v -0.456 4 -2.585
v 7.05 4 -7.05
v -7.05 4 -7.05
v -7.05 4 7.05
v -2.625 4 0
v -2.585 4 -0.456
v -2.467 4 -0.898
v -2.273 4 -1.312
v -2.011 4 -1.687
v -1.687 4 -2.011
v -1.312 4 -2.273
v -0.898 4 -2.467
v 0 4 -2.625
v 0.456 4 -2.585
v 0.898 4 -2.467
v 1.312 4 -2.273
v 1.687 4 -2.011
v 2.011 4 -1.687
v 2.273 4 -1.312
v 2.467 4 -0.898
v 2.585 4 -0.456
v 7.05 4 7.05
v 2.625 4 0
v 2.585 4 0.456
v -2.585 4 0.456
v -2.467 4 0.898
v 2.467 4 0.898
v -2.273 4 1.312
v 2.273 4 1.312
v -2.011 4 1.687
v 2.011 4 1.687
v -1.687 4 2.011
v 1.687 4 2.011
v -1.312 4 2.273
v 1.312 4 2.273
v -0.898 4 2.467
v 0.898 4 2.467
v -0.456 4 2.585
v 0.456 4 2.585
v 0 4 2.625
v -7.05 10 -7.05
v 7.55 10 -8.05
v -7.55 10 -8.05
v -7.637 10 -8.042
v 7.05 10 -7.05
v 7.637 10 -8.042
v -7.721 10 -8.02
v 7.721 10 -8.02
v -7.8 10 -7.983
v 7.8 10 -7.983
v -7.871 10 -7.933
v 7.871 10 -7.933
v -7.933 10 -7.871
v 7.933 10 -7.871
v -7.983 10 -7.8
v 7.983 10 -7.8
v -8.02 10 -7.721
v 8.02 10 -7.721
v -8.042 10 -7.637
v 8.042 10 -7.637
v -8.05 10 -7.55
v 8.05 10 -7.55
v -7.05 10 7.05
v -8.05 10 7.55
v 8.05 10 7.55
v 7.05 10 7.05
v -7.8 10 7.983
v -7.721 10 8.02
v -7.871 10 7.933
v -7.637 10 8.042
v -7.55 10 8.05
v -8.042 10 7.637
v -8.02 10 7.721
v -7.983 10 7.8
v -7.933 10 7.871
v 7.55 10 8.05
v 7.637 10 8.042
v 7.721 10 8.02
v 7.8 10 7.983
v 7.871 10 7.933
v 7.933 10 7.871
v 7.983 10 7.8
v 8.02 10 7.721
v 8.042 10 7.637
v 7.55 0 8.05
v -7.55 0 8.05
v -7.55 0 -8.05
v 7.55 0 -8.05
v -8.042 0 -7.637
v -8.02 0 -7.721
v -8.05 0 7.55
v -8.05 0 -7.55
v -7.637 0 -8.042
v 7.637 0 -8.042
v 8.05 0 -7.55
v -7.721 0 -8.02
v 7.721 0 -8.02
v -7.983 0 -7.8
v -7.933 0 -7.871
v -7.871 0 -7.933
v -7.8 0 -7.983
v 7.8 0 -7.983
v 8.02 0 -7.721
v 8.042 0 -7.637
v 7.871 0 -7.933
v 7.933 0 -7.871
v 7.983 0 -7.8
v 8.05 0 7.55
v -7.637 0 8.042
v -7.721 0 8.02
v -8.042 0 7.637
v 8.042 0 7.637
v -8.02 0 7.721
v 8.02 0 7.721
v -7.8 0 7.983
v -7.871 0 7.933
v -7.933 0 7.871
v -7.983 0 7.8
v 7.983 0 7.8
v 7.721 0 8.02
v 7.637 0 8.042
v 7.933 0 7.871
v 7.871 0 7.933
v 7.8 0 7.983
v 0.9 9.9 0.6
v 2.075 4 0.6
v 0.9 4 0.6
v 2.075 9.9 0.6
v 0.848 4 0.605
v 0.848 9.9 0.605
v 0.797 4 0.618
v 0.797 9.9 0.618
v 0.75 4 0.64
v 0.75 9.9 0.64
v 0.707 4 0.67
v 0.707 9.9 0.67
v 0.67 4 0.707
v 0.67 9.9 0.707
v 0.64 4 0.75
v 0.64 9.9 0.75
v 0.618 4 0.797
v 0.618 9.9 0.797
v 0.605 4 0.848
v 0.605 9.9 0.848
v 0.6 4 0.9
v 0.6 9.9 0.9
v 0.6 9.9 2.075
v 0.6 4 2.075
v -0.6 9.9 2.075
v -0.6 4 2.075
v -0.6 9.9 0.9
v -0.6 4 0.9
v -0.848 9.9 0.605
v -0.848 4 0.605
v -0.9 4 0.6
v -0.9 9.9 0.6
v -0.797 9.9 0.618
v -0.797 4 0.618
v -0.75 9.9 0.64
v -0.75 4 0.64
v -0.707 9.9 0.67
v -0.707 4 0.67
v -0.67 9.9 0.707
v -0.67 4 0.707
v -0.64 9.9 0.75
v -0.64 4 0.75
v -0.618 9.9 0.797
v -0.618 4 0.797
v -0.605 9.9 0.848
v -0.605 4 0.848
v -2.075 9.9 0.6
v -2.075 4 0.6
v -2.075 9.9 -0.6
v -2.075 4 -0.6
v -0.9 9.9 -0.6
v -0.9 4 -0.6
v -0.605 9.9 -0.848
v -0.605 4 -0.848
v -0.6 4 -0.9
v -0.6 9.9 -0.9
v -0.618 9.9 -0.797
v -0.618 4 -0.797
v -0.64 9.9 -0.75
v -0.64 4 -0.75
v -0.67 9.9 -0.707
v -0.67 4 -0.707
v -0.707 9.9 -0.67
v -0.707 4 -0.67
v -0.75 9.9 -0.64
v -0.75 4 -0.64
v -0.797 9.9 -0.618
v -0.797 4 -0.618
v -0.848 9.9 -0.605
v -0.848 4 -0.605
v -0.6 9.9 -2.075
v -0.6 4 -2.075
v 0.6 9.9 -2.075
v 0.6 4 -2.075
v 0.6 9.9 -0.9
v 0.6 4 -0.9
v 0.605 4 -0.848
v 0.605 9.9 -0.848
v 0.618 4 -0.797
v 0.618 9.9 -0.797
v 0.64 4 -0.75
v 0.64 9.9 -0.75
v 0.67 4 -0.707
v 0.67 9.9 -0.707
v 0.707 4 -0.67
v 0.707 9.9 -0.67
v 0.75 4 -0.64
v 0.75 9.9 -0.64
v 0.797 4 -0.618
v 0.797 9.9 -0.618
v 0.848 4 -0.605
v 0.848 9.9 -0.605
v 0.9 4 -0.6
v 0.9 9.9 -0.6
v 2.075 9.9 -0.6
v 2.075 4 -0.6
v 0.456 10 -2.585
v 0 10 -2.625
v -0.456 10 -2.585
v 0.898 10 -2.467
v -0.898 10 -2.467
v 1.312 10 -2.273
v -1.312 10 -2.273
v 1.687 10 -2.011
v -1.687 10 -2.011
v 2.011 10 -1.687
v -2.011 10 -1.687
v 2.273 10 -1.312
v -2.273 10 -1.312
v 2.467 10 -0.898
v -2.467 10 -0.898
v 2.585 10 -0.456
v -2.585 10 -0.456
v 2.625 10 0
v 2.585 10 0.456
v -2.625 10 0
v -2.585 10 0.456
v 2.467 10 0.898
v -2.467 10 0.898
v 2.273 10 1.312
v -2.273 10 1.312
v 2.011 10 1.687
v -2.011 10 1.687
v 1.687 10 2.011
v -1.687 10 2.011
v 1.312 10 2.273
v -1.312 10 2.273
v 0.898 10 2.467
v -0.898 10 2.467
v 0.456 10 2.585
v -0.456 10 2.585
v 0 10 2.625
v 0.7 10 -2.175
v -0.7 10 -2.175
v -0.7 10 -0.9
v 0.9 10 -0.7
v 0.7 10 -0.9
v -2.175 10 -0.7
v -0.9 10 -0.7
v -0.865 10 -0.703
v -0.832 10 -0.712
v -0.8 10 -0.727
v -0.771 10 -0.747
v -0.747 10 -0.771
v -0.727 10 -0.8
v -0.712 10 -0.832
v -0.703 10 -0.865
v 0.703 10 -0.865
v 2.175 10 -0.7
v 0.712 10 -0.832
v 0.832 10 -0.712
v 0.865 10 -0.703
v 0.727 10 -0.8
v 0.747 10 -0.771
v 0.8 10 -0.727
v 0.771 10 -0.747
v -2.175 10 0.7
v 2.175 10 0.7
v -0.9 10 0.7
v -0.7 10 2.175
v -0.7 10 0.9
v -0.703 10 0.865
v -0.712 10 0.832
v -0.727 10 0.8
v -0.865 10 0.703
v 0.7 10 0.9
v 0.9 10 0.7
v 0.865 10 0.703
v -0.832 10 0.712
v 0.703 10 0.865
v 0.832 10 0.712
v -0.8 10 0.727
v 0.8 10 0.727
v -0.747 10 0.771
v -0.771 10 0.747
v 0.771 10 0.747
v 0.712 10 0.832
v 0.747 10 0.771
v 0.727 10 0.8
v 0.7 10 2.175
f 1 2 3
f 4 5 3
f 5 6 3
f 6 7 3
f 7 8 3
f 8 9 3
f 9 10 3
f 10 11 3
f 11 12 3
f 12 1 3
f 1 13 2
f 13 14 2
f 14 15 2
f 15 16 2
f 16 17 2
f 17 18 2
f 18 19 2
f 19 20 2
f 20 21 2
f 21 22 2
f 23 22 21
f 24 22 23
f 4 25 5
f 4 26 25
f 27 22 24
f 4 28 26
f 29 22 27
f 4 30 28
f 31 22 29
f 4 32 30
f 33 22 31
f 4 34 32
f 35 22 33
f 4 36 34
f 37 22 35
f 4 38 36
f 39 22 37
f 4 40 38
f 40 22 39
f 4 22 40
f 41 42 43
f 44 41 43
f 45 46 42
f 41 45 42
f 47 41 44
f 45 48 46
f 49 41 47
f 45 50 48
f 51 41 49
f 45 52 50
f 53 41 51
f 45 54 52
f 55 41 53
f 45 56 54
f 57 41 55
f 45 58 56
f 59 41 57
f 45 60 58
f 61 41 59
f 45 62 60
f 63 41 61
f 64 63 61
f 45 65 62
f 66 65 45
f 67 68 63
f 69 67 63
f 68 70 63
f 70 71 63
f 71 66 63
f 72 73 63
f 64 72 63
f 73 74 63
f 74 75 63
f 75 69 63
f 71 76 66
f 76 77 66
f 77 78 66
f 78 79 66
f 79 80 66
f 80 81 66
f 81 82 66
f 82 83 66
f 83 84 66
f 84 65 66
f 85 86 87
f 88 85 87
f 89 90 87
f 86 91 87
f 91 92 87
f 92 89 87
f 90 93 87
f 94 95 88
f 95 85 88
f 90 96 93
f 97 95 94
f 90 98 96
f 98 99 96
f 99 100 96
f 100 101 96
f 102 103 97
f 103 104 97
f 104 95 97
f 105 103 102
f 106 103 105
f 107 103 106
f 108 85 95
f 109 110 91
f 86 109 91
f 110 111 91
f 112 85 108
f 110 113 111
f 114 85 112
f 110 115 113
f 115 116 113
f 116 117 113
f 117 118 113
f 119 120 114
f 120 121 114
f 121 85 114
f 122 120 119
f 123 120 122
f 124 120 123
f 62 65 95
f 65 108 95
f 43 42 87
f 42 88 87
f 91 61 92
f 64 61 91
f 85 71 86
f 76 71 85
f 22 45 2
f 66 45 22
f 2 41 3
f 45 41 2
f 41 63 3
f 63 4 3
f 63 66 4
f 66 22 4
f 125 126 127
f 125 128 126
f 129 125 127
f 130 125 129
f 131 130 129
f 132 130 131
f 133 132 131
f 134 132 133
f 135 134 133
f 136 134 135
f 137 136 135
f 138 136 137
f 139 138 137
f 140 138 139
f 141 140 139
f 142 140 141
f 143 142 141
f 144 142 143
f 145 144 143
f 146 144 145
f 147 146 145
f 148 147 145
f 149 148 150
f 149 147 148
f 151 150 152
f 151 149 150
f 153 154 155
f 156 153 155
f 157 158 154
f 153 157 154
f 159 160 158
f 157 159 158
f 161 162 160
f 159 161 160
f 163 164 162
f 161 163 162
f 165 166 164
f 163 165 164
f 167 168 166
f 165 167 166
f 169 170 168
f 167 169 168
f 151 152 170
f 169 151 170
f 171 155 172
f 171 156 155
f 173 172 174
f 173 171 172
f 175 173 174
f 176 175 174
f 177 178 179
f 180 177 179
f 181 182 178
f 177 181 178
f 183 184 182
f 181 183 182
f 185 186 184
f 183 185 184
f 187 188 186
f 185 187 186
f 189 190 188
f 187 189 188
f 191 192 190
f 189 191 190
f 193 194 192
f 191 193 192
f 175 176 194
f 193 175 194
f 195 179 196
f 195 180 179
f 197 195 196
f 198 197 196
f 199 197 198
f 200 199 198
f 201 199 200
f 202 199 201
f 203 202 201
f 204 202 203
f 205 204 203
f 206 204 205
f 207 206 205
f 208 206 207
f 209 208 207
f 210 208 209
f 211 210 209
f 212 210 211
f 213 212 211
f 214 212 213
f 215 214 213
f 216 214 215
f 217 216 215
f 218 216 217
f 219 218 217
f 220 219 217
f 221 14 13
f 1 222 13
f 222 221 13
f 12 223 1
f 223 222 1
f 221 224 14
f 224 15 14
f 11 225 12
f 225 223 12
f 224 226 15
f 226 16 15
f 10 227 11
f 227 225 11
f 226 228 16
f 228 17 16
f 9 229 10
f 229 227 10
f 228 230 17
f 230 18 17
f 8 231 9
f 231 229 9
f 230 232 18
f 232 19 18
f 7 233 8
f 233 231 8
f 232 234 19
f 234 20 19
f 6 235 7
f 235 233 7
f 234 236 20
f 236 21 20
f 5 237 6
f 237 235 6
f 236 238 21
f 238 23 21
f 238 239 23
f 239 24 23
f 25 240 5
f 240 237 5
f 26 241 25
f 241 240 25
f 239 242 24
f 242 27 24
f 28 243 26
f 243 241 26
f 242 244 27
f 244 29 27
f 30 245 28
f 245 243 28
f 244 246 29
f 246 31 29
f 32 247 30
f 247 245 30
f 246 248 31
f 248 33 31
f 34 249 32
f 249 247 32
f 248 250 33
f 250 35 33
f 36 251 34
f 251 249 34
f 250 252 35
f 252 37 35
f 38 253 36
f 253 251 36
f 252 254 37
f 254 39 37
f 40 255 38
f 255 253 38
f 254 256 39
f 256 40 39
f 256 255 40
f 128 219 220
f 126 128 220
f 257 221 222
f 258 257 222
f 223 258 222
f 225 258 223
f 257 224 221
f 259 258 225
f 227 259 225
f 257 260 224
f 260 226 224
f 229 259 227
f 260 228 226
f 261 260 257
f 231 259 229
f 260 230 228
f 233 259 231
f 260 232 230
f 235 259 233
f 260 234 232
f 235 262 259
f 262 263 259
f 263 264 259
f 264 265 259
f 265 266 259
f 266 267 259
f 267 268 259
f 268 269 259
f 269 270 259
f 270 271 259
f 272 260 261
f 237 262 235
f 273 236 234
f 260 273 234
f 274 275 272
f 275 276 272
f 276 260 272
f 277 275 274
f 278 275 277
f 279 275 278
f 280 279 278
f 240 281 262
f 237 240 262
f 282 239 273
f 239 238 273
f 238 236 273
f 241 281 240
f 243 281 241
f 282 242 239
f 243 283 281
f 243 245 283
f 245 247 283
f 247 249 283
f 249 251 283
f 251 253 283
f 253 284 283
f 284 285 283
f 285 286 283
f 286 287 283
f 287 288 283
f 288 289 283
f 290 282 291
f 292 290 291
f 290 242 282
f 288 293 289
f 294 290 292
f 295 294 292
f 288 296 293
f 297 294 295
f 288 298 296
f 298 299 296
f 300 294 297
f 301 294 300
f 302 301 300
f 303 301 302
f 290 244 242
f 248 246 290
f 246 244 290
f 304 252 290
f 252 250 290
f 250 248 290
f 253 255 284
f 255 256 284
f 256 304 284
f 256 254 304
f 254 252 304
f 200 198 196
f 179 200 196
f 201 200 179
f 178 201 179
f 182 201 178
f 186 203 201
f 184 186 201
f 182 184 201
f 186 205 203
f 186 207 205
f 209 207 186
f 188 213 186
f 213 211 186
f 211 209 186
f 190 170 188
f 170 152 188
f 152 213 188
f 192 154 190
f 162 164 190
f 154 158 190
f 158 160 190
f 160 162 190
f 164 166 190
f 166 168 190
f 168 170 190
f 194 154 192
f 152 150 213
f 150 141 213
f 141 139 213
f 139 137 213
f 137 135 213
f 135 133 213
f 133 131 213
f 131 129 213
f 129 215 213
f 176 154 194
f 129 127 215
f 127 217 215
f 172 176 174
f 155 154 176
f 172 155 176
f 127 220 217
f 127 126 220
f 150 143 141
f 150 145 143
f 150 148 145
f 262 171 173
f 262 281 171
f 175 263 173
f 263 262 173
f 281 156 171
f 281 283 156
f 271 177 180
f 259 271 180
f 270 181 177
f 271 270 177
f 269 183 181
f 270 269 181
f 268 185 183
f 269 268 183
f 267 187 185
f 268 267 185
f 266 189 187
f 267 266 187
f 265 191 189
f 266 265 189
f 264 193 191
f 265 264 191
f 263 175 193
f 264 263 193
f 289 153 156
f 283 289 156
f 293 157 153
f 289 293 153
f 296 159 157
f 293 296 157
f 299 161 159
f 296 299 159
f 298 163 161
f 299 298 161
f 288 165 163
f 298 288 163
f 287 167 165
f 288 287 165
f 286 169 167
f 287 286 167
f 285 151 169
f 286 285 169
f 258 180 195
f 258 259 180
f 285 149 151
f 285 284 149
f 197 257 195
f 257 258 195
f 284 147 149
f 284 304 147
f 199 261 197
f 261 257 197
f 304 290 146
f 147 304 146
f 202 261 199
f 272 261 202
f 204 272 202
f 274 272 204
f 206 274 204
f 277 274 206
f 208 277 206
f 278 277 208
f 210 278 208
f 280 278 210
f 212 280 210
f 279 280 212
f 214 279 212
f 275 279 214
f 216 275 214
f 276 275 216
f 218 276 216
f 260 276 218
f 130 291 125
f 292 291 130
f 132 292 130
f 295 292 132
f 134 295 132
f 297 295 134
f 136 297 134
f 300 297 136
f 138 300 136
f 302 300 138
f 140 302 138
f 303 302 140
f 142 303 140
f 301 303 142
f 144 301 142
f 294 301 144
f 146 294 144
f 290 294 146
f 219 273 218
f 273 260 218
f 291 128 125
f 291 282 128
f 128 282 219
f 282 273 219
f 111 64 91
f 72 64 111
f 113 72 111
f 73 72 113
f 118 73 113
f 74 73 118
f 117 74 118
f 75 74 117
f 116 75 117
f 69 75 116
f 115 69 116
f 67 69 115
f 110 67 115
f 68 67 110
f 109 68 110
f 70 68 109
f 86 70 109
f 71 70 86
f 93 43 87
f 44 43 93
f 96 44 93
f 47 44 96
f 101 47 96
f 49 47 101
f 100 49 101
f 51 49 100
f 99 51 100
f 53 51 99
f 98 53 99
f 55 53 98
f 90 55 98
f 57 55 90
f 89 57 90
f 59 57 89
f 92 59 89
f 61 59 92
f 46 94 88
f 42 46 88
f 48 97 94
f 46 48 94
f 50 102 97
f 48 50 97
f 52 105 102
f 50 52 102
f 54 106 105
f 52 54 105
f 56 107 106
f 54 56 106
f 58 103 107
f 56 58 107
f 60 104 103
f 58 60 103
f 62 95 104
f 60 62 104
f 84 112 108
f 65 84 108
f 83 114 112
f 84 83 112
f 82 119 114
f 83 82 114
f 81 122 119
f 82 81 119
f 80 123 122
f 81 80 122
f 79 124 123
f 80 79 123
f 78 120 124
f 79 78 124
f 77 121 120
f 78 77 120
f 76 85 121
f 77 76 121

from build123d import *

# Parameters (mm, degrees)
SKETCH1_W           = 16.1
SKETCH1_H           = 16.1
SKETCH1_W_2         = 14.1
SKETCH1_H_2         = 14.1
BOSS_EXTRUDE1_DEPTH = 10
SKETCH1_2_W         = 14.1
SKETCH1_2_H         = 14.1
BOSS_EXTRUDE2_DEPTH = 4
SKETCH2_R           = 2.625
BOSS_EXTRUDE3_DEPTH = 6
CHAMFER1_SIZE       = 0.1
FILLET1_R           = 0.5


with BuildPart() as part:
    # Sketch1 → Boss-Extrude1 (new body)
    with BuildSketch(Plane(origin=(0, 0, 0), x_dir=(1, 0, 0), z_dir=(0, 1, 0))):
        Rectangle(SKETCH1_W, SKETCH1_H)
        Rectangle(SKETCH1_W_2, SKETCH1_H_2, mode=Mode.SUBTRACT)
    extrude(amount=BOSS_EXTRUDE1_DEPTH)

    # Sketch1<2> → Boss-Extrude2 (add)
    with BuildSketch(Plane(origin=(0, 0, 0), x_dir=(1, 0, 0), z_dir=(0, 1, 0))):
        Rectangle(SKETCH1_2_W, SKETCH1_2_H)
    extrude(amount=BOSS_EXTRUDE2_DEPTH)

    # Sketch2 → Boss-Extrude3 (add)
    with BuildSketch(Plane(origin=(0, 4, 0), x_dir=(1, 0, 0), z_dir=(0, 1, 0))):
        with Locations(Location((0, 0, 0), (0, 0, 90))):
            Circle(SKETCH2_R)
        with BuildLine():
            Line((-0.9, -0.6), (-2.075, -0.6))
            Line((-2.075, -0.6), (-2.075, 0.6))
            Line((-2.075, 0.6), (-0.9, 0.6))
            ThreePointArc((-0.9, 0.6), (-0.687867966, 0.687867966), (-0.6, 0.9))
            Line((-0.6, 0.9), (-0.6, 2.075))
            Line((-0.6, 2.075), (0.6, 2.075))
            Line((0.6, 2.075), (0.6, 0.9))
            ThreePointArc((0.6, 0.9), (0.687867966, 0.687867966), (0.9, 0.6))
            Line((0.9, 0.6), (2.075, 0.6))
            Line((2.075, 0.6), (2.075, -0.6))
            Line((2.075, -0.6), (0.9, -0.6))
            ThreePointArc((0.9, -0.6), (0.687867966, -0.687867966), (0.6, -0.9))
            Line((0.6, -0.9), (0.6, -2.075))
            Line((0.6, -2.075), (-0.6, -2.075))
            Line((-0.6, -2.075), (-0.6, -0.9))
            ThreePointArc((-0.6, -0.9), (-0.687867966, -0.687867966), (-0.9, -0.6))
        make_face(mode=Mode.SUBTRACT)
    extrude(amount=BOSS_EXTRUDE3_DEPTH)

    # Chamfer1
    chamfer1_edges = [part.edges().sort_by_distance(p)[0] for p in [
        (0.687867966, 10, 0.687867966),
        (0, 10, 2.075),
        (-0.6, 10, 1.4875),
        (-0.687867966, 10, 0.687867966),
        (-2.075, 10, 0),
        (-1.4875, 10, -0.6),
        (-0.687867966, 10, -0.687867966),
        (-0.6, 10, -1.4875),
        (0.687867966, 10, -0.687867966),
        (1.4875, 10, -0.6),
        (1.4875, 10, 0.6),
        (0.6, 10, 1.4875),
        (-1.4875, 10, 0.6),
        (0, 10, -2.075),
        (0.6, 10, -1.4875),
        (2.075, 10, 0),
    ]]
    chamfer(chamfer1_edges, length=CHAMFER1_SIZE)

    # Fillet1
    fillet1_edges = [part.edges().sort_by_distance(p)[0] for p in [
        (8.05, 5, 8.05),
        (-8.05, 5, 8.05),
        (-8.05, 5, -8.05),
        (8.05, 5, -8.05),
    ]]
    fillet(fillet1_edges, radius=FILLET1_R)


solid = part.part
